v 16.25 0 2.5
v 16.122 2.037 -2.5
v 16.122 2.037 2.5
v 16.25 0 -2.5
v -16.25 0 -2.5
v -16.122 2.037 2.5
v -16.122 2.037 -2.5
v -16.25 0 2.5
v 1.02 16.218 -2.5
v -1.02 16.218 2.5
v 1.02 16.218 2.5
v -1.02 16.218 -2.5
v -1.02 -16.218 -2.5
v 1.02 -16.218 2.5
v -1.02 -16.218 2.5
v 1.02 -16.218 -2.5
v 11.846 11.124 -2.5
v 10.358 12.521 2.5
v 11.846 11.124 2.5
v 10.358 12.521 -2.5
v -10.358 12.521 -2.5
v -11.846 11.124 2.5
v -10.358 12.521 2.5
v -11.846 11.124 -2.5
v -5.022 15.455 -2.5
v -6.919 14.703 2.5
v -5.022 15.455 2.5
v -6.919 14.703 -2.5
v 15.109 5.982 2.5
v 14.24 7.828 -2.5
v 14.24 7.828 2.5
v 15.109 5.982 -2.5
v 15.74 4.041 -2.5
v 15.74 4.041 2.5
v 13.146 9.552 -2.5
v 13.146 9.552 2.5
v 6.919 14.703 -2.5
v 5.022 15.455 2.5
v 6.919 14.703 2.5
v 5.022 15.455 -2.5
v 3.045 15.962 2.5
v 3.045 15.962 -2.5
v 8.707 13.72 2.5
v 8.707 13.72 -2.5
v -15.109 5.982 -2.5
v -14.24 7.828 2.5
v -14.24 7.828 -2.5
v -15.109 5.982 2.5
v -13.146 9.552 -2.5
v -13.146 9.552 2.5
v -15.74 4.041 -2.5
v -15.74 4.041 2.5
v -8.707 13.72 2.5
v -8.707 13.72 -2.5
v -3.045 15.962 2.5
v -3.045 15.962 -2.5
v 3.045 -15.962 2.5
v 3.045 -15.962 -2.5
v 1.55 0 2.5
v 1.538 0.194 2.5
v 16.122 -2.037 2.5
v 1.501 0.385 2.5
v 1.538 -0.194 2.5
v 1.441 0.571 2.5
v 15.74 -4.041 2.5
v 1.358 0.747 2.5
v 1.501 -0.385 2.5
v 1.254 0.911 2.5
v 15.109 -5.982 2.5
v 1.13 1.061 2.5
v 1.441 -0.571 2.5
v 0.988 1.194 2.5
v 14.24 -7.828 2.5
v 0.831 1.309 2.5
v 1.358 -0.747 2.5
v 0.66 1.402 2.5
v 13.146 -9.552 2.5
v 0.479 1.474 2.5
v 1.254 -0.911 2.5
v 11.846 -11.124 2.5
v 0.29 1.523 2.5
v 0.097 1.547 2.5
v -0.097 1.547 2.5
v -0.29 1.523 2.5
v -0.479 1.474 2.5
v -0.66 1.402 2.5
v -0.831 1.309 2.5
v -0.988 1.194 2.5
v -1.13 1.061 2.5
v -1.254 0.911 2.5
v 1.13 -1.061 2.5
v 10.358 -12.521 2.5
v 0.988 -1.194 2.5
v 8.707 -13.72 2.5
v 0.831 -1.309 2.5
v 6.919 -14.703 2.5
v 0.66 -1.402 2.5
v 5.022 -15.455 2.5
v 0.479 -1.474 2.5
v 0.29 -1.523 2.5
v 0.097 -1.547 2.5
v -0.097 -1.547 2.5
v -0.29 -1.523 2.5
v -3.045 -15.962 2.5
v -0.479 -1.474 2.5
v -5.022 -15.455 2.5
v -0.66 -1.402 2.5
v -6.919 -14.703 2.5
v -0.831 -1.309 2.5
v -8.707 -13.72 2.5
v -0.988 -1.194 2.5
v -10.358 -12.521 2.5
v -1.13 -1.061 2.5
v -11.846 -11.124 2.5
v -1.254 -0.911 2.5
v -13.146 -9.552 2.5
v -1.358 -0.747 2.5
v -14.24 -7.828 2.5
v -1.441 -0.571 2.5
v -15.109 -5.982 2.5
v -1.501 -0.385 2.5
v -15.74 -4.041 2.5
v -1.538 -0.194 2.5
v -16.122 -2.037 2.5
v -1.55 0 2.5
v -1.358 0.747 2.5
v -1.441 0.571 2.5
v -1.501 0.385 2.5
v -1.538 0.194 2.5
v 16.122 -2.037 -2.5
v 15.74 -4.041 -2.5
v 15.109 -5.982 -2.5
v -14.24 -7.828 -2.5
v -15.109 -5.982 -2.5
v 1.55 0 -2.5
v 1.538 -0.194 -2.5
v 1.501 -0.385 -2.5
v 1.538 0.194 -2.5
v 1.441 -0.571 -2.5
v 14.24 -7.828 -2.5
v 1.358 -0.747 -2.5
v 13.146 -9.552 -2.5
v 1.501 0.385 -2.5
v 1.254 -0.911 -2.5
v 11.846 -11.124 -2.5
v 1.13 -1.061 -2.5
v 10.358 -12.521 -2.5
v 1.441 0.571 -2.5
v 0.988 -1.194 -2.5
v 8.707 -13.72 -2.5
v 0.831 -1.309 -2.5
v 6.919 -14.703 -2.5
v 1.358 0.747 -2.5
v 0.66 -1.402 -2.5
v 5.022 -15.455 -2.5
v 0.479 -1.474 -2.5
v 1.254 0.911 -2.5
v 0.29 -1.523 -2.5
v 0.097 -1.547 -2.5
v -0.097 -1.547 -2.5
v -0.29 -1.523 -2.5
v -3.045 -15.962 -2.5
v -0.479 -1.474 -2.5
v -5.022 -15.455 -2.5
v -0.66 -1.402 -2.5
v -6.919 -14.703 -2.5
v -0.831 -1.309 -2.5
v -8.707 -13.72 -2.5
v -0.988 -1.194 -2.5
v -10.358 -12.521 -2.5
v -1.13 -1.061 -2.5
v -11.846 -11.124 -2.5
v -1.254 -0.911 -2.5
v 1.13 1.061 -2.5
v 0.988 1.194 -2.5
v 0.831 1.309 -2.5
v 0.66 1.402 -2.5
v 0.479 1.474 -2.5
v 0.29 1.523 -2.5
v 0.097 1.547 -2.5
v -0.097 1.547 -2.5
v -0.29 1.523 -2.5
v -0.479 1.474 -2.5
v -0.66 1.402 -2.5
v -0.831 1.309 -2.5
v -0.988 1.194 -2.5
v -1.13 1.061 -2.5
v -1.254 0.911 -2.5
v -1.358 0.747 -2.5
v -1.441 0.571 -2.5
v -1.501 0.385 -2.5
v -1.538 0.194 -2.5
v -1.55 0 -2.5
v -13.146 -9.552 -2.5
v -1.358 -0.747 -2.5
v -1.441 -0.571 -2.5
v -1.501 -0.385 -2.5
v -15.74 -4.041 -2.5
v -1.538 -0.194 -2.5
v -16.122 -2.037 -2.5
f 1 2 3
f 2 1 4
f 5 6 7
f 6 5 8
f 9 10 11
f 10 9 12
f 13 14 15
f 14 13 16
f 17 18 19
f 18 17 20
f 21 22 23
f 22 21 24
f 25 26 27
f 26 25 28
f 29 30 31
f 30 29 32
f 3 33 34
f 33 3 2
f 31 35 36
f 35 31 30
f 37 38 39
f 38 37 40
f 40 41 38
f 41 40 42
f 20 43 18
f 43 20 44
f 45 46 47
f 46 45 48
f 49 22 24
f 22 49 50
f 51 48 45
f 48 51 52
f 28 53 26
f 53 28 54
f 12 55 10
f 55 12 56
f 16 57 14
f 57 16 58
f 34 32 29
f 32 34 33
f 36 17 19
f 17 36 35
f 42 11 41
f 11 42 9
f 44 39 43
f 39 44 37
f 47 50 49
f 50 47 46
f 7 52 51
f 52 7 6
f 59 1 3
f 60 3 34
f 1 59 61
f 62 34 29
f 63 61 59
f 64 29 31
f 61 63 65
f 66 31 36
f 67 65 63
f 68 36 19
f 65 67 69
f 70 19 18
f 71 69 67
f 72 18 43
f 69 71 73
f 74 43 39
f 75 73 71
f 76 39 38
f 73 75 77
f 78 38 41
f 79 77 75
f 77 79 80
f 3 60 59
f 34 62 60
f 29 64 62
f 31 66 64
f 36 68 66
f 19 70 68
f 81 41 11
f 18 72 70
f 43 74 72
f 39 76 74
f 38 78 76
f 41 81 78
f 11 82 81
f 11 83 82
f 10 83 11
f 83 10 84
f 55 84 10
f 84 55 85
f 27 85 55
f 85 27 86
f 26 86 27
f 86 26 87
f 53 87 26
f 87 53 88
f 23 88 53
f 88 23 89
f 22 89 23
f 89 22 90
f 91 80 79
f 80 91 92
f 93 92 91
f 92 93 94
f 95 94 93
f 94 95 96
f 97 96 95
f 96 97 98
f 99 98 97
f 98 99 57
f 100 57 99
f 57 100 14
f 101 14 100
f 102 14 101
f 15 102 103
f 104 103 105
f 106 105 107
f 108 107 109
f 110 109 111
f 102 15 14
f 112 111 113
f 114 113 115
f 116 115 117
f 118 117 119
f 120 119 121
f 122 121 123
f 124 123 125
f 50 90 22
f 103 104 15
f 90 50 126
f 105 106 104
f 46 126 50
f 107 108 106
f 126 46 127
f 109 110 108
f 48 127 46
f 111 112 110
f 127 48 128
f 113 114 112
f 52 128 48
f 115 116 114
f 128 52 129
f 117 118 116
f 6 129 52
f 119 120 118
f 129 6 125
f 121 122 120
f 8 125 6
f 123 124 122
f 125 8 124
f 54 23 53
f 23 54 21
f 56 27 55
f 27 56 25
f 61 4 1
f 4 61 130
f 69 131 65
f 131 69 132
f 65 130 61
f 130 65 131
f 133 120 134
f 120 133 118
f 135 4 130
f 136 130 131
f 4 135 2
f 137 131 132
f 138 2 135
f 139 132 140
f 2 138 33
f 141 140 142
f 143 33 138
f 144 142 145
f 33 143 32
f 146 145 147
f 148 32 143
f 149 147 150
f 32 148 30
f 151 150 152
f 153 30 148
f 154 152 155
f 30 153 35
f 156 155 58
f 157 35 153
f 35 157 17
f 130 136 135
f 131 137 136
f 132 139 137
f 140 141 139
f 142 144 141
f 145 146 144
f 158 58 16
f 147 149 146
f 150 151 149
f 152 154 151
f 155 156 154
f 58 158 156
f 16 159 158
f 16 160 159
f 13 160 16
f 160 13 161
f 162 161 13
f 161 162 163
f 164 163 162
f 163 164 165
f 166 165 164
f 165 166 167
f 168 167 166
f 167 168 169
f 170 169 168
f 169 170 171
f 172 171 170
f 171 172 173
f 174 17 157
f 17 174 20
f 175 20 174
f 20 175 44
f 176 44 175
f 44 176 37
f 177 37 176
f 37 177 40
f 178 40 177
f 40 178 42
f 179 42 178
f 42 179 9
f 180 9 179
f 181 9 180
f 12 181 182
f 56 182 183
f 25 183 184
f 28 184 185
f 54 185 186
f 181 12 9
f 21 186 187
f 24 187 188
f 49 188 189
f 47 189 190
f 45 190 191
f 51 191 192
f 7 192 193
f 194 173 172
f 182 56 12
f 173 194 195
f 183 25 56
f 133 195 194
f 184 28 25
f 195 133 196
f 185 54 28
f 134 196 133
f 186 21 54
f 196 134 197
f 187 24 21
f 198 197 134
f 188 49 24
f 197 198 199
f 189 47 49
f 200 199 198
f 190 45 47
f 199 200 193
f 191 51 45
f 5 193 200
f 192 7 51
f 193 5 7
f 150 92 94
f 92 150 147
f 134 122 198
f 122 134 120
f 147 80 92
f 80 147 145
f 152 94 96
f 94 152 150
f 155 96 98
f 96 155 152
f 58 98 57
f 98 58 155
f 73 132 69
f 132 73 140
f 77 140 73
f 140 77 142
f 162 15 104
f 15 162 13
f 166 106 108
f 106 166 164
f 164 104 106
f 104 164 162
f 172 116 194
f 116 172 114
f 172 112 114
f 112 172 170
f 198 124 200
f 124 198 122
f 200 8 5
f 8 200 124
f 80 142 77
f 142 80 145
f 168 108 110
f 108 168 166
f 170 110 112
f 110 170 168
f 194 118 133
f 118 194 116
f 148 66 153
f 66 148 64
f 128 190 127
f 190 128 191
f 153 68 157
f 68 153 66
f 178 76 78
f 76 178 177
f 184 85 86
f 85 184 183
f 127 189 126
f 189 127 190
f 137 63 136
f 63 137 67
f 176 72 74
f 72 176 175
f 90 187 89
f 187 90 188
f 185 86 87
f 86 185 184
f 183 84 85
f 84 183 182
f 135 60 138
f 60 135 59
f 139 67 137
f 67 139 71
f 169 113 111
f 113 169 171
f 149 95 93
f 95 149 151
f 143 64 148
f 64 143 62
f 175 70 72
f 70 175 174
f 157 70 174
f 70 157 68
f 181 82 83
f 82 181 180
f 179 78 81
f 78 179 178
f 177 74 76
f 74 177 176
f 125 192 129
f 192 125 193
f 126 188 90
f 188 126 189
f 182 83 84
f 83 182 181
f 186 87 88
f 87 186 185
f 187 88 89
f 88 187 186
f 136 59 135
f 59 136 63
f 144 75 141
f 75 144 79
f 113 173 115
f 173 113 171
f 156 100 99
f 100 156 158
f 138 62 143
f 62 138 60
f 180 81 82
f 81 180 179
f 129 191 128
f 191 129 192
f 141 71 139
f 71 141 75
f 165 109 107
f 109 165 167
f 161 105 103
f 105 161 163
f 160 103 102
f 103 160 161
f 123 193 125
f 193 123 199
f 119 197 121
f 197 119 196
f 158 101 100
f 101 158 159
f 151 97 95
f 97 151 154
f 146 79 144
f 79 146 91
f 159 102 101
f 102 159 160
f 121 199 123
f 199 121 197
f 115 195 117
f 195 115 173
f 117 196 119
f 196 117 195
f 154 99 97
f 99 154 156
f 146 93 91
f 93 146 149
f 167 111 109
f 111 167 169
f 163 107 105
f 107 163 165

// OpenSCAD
$fn = 50;


difference() {
	union() {
		translate(v = [0, 0, -2.5000000000]) {
			cylinder(h = 5, r = 16.2500000000);
		}
	}
	union() {
		translate(v = [0, 0, -100.0000000000]) {
			cylinder(h = 200, r = 1.5500000000);
		}
	}
}
